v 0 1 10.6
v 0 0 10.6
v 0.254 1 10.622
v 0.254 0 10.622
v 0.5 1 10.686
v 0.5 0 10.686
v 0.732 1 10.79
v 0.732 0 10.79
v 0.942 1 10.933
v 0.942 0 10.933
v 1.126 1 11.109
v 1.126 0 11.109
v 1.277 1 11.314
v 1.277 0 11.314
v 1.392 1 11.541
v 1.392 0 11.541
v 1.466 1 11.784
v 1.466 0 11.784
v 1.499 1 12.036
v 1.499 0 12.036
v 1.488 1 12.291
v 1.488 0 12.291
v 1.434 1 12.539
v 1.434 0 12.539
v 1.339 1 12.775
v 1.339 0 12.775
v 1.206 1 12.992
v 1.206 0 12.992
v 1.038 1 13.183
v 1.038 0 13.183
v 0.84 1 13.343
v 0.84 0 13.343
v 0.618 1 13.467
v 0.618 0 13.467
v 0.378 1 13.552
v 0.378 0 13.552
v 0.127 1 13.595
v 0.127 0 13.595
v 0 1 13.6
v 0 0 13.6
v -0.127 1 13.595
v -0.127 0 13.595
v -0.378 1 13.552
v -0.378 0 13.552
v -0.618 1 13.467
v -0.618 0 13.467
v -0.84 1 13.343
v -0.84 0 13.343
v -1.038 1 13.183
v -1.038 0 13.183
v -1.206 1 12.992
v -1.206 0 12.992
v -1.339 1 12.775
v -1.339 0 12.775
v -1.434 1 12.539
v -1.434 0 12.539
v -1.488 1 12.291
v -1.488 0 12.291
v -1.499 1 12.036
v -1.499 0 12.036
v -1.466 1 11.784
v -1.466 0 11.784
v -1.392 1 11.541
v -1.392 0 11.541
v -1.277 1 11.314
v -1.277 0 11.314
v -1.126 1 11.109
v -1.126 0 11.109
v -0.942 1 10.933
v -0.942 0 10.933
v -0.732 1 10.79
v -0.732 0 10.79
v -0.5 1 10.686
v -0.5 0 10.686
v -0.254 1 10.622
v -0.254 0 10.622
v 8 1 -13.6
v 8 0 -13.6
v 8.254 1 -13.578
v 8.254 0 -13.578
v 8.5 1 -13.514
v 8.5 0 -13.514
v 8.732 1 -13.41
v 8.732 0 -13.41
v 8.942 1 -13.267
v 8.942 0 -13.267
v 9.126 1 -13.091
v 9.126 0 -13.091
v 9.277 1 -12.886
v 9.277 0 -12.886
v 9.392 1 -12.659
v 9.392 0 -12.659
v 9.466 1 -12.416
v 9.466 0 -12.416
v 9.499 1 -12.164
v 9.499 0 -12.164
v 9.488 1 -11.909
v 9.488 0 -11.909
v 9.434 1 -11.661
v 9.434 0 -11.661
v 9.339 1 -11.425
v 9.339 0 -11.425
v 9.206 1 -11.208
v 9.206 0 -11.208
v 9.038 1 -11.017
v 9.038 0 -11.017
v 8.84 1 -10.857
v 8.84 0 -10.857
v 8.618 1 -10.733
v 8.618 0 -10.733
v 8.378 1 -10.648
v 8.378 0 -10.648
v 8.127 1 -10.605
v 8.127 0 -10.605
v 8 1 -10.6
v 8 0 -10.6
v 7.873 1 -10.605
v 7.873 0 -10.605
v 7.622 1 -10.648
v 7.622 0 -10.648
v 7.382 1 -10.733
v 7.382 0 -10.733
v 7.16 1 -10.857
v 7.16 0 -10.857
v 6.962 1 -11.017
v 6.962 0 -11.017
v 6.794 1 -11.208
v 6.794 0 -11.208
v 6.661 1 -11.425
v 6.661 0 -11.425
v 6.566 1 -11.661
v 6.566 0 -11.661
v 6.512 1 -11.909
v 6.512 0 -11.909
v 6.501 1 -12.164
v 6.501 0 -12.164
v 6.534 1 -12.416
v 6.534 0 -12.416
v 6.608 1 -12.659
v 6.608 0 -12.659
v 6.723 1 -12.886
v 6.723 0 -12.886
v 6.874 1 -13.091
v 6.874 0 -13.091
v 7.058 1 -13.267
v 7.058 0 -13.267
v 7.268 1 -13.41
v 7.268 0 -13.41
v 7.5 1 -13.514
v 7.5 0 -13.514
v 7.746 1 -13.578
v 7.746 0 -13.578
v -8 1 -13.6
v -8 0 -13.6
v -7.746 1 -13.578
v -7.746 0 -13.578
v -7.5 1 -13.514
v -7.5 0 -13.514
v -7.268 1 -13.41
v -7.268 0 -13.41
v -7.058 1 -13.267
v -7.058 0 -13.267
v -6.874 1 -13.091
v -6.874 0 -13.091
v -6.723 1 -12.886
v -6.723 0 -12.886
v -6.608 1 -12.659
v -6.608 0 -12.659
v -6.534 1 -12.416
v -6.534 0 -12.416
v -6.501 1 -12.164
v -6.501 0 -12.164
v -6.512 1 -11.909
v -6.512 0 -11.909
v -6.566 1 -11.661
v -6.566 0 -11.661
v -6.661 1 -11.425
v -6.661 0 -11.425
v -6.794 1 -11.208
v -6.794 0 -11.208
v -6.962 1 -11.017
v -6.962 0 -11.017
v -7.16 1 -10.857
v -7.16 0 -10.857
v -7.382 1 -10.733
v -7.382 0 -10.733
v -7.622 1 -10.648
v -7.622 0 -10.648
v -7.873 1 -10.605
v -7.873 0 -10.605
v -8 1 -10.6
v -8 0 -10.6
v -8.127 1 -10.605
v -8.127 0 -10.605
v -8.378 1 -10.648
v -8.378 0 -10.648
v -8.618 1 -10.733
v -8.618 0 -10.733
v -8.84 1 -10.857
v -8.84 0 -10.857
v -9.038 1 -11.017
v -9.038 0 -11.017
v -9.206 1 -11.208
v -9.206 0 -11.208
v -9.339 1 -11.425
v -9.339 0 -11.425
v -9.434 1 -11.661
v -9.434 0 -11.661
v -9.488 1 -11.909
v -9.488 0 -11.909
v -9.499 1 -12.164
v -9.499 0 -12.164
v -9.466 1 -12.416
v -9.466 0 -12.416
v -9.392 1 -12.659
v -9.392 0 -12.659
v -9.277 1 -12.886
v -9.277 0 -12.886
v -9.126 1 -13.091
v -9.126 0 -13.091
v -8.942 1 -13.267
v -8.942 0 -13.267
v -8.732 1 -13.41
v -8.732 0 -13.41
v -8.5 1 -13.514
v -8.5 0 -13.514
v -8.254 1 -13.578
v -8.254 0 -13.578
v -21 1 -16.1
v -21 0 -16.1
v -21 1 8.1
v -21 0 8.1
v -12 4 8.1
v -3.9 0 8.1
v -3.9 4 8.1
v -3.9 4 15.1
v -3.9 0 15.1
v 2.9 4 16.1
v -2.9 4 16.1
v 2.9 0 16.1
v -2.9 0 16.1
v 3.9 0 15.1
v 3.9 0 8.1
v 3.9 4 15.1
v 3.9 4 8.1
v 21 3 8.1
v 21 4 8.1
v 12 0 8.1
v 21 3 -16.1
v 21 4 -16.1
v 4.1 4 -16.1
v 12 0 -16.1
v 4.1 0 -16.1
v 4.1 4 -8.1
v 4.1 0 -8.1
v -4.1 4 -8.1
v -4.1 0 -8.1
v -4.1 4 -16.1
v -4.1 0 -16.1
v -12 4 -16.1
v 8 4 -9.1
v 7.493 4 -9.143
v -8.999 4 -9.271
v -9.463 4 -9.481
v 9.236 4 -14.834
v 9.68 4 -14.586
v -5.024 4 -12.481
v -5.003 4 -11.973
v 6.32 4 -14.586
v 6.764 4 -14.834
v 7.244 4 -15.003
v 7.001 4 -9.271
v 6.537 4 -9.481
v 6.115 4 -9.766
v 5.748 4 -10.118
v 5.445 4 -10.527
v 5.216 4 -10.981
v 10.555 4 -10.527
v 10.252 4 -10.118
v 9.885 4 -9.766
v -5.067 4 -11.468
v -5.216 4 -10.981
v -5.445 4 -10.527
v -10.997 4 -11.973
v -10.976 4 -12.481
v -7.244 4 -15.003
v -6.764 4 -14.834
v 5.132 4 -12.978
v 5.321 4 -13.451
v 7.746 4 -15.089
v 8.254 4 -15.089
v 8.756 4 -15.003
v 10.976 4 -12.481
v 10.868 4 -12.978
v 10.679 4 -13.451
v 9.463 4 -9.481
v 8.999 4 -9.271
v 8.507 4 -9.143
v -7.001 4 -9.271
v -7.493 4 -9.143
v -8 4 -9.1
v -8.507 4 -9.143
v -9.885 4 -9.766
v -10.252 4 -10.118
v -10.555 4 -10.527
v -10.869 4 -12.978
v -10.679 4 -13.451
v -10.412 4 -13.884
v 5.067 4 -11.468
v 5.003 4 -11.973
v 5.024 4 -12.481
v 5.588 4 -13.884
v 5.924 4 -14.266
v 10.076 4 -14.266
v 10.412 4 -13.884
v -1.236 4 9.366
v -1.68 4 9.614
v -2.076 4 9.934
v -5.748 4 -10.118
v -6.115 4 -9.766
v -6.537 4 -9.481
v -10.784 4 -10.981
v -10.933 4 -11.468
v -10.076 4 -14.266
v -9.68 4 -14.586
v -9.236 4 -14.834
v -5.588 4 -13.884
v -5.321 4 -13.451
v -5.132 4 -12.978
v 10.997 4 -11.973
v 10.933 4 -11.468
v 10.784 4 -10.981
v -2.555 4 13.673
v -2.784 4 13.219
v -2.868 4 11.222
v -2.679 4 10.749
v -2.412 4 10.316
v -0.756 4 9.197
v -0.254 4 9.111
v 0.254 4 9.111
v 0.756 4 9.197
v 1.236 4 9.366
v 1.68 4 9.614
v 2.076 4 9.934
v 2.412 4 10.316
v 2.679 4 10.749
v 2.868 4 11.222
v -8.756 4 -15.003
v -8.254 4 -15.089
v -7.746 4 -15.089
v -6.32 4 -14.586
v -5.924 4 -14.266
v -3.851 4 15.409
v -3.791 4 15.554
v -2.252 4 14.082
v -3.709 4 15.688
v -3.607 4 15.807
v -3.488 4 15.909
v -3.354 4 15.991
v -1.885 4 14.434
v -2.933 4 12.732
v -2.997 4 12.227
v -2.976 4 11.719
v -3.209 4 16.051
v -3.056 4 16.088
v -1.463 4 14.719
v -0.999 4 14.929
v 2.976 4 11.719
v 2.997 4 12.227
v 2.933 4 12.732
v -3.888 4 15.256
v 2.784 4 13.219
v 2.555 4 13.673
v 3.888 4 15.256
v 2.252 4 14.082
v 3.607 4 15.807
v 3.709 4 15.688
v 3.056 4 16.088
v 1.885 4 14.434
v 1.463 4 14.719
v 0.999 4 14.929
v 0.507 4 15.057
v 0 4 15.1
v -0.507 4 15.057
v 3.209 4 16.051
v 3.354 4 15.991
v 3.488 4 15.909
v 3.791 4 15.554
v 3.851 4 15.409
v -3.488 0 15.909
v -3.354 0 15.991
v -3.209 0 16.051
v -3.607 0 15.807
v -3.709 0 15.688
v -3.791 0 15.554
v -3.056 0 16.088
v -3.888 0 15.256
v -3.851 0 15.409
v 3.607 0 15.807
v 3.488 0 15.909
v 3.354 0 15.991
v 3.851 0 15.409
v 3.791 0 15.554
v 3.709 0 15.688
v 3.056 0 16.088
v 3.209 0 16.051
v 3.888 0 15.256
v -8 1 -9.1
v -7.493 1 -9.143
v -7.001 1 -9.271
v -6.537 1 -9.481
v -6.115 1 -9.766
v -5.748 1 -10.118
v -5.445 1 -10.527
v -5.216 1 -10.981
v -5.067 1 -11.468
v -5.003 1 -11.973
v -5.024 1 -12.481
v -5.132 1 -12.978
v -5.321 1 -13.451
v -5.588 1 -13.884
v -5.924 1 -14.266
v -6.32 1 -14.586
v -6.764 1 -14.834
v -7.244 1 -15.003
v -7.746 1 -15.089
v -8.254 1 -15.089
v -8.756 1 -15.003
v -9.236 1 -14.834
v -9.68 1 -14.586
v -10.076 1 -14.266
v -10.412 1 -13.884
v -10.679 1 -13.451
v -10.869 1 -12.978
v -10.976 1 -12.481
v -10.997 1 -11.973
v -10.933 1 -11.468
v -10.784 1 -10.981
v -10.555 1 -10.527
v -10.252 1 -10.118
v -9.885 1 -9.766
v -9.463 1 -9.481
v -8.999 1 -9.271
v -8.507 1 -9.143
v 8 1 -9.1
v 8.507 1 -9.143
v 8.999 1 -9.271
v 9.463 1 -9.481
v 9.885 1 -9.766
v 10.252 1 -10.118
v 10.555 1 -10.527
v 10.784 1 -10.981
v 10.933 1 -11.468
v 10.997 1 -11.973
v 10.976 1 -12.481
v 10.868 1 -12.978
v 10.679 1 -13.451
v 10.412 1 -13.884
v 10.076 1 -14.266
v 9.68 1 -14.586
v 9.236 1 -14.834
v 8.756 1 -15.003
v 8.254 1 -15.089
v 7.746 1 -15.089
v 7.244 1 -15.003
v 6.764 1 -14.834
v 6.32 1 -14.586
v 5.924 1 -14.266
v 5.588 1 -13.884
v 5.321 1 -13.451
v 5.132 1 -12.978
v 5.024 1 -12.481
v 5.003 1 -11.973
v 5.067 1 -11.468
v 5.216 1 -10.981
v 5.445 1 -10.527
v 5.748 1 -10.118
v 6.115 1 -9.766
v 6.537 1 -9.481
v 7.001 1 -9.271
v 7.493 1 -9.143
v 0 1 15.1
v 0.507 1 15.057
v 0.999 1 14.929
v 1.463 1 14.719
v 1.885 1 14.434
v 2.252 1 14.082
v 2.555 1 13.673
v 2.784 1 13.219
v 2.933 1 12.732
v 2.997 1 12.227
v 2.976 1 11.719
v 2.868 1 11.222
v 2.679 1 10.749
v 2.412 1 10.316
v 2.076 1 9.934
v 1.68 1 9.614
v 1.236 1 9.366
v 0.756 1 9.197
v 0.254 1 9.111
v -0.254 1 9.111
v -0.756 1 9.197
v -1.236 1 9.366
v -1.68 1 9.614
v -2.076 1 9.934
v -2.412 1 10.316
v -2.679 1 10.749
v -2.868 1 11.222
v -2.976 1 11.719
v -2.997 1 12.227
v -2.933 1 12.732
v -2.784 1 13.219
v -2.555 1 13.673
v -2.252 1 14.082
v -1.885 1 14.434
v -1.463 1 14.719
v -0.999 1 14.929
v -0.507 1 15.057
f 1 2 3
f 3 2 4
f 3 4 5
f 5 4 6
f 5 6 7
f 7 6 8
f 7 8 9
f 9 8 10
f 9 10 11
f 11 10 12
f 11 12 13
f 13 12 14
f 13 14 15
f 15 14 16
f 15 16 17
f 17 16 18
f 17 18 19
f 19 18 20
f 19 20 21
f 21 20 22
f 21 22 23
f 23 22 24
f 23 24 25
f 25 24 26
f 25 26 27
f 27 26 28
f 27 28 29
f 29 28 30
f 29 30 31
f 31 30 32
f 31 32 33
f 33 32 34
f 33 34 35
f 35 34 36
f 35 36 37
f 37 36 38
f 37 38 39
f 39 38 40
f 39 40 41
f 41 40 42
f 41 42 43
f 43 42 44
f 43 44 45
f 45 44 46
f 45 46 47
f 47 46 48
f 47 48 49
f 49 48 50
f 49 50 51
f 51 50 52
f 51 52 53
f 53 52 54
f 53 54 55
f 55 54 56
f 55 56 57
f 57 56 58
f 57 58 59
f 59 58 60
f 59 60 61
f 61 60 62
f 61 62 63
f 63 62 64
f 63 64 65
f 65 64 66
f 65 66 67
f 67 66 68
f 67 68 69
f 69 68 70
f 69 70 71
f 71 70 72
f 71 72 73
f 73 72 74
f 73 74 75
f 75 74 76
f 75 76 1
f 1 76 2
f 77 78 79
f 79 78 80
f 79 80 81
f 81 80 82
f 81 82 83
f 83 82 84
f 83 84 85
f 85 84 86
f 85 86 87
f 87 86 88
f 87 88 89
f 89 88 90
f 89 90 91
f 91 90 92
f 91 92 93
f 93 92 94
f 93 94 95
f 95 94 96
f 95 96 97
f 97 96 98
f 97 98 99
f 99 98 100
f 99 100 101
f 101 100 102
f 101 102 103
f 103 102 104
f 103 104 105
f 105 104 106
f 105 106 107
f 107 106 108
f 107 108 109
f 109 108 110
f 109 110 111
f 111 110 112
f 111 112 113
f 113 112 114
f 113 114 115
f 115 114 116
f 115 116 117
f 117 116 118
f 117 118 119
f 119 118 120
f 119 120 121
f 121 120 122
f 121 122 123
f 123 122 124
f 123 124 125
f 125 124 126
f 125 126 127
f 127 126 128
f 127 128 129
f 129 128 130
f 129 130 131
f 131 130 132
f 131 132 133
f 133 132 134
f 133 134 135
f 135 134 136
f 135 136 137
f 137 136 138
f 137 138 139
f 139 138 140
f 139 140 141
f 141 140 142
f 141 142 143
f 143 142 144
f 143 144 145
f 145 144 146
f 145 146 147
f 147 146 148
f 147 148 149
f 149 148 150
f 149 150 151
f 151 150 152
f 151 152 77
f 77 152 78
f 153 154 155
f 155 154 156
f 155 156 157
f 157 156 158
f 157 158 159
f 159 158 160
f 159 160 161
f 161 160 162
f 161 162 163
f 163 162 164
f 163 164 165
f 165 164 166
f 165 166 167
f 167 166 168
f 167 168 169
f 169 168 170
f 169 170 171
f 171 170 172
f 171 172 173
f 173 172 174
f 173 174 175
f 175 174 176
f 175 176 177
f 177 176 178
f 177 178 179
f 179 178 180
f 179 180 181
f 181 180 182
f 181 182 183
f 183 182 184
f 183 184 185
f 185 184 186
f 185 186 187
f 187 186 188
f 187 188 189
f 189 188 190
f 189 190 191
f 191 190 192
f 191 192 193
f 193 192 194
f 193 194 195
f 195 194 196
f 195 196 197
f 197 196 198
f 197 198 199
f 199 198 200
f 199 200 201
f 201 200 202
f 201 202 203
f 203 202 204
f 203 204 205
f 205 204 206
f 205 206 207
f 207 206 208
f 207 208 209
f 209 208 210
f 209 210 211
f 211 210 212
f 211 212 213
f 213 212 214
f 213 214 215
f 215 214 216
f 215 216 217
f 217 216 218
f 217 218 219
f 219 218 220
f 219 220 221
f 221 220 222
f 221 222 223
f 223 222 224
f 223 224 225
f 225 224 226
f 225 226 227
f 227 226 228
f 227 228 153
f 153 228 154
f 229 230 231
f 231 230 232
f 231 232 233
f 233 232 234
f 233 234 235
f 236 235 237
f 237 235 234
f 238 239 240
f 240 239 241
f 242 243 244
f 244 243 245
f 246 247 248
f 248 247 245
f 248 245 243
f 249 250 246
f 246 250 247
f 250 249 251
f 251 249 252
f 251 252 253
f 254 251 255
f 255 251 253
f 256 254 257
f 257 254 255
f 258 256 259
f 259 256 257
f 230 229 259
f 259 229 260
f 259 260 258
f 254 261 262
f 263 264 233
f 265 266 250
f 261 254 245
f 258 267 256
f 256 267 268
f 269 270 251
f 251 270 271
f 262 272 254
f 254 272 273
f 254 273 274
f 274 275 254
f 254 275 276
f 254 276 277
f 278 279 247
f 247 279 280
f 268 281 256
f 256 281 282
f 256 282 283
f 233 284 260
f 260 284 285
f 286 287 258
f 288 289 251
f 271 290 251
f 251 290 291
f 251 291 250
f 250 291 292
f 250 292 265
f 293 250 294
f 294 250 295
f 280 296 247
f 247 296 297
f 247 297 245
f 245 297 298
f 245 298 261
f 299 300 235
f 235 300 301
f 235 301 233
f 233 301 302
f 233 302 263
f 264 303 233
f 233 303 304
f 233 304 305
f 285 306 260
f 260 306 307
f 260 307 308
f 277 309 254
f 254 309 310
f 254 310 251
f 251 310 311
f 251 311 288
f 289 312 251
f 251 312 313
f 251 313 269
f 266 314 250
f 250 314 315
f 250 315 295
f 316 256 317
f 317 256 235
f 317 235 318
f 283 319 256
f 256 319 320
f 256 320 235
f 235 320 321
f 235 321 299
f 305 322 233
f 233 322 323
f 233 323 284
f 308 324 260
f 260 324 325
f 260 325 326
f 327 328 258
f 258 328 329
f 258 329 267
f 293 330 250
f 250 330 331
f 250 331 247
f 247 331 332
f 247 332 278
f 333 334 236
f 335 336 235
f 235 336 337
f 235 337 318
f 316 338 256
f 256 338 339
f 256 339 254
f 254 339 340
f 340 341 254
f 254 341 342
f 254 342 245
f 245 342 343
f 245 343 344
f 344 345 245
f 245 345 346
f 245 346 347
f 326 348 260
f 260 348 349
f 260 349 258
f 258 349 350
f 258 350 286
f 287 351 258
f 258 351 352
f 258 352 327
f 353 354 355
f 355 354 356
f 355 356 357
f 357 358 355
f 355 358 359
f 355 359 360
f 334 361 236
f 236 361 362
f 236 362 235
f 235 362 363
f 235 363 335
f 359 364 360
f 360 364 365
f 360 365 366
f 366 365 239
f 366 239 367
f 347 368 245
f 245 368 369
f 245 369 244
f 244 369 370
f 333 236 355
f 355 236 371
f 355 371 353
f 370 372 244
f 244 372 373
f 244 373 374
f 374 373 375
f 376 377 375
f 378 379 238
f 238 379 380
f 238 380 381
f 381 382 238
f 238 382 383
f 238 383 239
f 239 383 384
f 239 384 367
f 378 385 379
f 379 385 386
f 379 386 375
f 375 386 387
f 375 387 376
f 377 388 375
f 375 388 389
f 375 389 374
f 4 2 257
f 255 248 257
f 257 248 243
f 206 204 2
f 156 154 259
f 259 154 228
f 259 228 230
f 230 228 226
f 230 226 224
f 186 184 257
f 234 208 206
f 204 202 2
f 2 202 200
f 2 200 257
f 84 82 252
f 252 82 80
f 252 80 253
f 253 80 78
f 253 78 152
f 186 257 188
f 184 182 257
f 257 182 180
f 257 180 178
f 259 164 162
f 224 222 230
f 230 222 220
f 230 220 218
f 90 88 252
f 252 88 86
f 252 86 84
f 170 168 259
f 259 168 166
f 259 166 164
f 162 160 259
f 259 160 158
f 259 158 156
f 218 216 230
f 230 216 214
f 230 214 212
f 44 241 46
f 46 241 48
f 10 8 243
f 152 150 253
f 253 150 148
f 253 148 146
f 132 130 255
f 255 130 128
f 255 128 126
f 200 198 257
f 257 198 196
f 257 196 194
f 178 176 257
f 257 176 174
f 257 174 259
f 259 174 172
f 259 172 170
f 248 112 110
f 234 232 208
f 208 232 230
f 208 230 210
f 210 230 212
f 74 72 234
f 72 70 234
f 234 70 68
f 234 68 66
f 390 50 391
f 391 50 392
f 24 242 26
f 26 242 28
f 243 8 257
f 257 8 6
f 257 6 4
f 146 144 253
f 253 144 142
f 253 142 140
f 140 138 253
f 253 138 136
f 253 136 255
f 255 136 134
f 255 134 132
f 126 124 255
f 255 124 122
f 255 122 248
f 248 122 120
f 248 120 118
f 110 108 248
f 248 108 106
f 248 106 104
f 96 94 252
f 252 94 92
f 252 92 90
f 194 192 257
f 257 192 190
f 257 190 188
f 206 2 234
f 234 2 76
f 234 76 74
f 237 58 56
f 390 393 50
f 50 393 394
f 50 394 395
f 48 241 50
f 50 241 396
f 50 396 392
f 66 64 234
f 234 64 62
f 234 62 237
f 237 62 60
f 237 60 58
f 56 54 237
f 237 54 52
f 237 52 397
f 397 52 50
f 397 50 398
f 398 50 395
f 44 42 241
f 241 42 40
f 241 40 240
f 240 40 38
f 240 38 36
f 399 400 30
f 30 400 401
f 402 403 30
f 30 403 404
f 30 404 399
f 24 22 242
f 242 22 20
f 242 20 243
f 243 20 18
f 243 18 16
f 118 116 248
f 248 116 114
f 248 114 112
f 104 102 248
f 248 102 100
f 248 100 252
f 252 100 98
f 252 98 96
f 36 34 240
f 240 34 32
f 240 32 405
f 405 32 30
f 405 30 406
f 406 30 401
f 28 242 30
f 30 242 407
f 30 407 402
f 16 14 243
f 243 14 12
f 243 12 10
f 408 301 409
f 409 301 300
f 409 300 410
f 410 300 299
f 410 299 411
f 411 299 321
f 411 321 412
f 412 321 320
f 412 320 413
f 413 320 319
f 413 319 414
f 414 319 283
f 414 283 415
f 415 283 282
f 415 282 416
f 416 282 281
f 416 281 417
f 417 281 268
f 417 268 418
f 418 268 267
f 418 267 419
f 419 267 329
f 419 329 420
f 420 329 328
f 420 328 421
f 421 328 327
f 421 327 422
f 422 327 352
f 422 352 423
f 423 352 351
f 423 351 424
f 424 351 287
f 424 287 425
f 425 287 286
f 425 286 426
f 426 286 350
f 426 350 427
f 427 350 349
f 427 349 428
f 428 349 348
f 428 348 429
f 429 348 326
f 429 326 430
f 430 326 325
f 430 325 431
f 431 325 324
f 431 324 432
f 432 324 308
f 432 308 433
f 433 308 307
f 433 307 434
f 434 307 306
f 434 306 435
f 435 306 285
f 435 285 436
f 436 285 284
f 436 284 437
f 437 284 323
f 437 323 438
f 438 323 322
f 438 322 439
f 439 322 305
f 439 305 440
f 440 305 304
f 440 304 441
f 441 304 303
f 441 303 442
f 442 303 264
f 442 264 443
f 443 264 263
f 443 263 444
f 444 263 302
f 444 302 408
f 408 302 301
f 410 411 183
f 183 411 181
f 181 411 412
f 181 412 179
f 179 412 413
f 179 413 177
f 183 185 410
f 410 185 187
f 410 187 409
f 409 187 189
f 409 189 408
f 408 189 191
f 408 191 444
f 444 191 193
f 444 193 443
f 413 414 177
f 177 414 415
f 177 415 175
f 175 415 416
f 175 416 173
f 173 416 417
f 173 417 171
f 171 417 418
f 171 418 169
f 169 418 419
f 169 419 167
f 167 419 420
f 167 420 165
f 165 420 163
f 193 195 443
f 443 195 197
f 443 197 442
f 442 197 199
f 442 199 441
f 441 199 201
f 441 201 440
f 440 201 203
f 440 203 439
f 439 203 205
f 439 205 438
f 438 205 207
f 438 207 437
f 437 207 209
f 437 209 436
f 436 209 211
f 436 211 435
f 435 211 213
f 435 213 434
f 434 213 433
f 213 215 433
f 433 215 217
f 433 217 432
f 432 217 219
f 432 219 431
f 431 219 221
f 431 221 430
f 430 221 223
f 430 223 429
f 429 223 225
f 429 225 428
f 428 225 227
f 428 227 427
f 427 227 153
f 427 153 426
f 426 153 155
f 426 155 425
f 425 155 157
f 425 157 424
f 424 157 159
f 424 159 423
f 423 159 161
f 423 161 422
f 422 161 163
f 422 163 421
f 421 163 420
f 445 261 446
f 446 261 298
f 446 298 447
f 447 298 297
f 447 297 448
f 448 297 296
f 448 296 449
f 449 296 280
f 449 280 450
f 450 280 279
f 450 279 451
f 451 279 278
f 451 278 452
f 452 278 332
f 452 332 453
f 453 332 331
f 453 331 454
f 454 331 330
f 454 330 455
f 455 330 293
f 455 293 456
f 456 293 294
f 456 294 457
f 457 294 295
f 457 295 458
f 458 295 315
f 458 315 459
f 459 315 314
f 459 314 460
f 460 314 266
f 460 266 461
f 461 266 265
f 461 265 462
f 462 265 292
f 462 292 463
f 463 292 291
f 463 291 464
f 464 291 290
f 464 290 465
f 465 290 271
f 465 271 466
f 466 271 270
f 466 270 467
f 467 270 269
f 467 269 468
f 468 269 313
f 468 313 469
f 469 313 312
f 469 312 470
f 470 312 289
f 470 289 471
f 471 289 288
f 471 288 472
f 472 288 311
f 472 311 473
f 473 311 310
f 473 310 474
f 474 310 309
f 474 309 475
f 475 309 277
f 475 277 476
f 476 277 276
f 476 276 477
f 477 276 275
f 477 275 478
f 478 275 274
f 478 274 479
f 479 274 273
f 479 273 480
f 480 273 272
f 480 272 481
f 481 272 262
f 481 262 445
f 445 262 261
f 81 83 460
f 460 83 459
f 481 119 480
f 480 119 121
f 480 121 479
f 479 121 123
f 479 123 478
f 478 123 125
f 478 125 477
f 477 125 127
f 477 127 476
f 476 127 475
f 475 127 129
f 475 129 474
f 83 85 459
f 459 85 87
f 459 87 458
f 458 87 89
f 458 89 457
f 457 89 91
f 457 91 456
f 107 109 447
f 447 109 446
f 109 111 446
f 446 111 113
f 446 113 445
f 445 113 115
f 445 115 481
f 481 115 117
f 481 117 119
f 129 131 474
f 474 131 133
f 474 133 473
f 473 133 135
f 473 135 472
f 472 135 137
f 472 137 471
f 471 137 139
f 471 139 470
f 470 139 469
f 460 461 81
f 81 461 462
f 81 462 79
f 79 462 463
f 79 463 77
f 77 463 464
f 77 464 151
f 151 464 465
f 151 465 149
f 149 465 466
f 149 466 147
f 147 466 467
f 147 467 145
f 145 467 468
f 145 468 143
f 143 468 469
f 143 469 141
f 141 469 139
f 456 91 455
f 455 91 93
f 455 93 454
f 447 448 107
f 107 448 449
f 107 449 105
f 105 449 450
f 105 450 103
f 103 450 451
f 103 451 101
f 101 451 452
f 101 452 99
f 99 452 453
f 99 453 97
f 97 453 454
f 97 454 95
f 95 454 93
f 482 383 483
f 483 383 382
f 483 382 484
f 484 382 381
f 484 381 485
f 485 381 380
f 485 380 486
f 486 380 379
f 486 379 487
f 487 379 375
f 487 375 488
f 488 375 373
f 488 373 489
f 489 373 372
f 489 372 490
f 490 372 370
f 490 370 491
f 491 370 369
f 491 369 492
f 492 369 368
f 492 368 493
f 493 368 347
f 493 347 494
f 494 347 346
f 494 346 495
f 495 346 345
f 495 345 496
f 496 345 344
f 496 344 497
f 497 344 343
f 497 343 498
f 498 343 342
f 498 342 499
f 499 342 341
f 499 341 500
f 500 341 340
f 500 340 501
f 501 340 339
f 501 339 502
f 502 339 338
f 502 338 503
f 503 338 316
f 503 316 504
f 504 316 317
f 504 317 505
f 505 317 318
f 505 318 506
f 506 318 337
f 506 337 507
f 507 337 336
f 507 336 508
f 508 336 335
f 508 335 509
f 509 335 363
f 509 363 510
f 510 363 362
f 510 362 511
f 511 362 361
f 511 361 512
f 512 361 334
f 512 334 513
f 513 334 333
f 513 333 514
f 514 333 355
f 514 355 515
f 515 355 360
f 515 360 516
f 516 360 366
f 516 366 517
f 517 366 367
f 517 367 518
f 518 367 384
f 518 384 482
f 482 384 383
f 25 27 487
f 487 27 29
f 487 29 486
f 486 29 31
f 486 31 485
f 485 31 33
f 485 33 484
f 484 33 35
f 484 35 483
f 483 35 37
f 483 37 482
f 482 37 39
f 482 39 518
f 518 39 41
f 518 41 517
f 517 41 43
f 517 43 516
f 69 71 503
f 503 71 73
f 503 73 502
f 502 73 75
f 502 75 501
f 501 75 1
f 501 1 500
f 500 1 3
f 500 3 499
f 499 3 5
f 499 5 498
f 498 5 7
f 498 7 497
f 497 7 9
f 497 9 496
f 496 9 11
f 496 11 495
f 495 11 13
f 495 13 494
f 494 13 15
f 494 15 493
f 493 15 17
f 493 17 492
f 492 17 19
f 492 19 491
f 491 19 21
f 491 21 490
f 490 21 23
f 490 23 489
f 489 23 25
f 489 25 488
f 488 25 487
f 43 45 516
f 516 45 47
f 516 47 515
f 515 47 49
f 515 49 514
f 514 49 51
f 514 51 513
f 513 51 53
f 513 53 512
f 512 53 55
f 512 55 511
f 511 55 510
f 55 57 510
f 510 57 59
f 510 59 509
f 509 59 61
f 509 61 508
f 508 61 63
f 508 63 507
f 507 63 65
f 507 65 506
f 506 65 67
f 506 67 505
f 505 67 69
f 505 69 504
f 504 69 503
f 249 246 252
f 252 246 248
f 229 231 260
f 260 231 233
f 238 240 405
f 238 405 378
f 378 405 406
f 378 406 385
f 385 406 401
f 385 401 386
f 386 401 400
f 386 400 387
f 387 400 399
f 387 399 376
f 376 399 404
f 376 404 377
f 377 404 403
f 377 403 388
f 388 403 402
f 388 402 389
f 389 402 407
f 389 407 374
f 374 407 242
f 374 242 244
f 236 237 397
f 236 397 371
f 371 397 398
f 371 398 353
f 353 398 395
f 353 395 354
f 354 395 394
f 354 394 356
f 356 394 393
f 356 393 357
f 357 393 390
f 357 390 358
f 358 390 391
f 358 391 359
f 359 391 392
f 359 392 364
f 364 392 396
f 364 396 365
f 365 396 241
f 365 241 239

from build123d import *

# Parameters (mm, degrees)
EXTRUDE_1_DEPTH     = 4
SKETCH_2_R          = 1.5
CUT_EXTRUDE_2_DEPTH = 27.762100067
SKETCH_3_R          = 3
CUT_EXTRUDE_3_DEPTH = 3
CUT_EXTRUDE_4_DEPTH = 39.65022639
FILLET_1_R          = 1


with BuildPart() as part:
    # 草图1 → 凸台-拉伸1 (new body)
    with BuildSketch(Plane(origin=(0, 0, 0), x_dir=(1, 0, 0), z_dir=(0, 1, 0))):
        Polygon((-21, 16.1), (-4.1, 16.1), (-4.1, 8.1), (4.1, 8.1), (4.1, 16.1), (21, 16.1), (21, -8.1), (3.9, -8.1), (3.9, -16.1), (-3.9, -16.1), (-3.9, -8.1), (-21, -8.1), align=None)
    extrude(amount=EXTRUDE_1_DEPTH)

    # 草图2 → 切除-拉伸2 (cut, through all)
    with BuildSketch(Plane(origin=(0, 0, 0), x_dir=(1, 0, 0), z_dir=(0, 1, 0))):
        with Locations(Location((-8, 12.1, 0), (0, 0, 270))):
            Circle(SKETCH_2_R)
        with Locations(Location((8, 12.1, 0), (0, 0, 270))):
            Circle(SKETCH_2_R)
        with Locations(Location((0, -12.1, 0), (0, 0, 270))):
            Circle(SKETCH_2_R)
    extrude(amount=CUT_EXTRUDE_2_DEPTH, mode=Mode.SUBTRACT)

    # 草图3 → 切除-拉伸3 (cut)
    with BuildSketch(Plane(origin=(0, 4, 0), x_dir=(1, 0, 0), z_dir=(0, 1, 0))):
        with Locations(Location((-8, 12.1, 0), (0, 0, 270))):
            Circle(SKETCH_3_R)
        with Locations(Location((8, 12.1, 0), (0, 0, 270))):
            Circle(SKETCH_3_R)
        with Locations(Location((0, -12.1, 0), (0, 0, 270))):
            Circle(SKETCH_3_R)
    extrude(amount=-CUT_EXTRUDE_3_DEPTH, mode=Mode.SUBTRACT)

    # 草图4 → 切除-拉伸4 (cut, through all)
    with BuildSketch(Plane(origin=(0, 0, -16.1), x_dir=(-1, 0, 0), z_dir=(0, 0, -1))):
        Polygon((-21, 3), (-12, 0), (-21, 0), align=None)
        Polygon((12, 4), (21, 1), (21, 4), align=None)
    extrude(amount=-CUT_EXTRUDE_4_DEPTH, mode=Mode.SUBTRACT)

    # 圆角1
    fillet_1_edges = [part.edges().sort_by_distance(p)[0] for p in [
        (3.9, 2, 16.1),
        (-3.9, 2, 16.1),
    ]]
    fillet(fillet_1_edges, radius=FILLET_1_R)


solid = part.part
